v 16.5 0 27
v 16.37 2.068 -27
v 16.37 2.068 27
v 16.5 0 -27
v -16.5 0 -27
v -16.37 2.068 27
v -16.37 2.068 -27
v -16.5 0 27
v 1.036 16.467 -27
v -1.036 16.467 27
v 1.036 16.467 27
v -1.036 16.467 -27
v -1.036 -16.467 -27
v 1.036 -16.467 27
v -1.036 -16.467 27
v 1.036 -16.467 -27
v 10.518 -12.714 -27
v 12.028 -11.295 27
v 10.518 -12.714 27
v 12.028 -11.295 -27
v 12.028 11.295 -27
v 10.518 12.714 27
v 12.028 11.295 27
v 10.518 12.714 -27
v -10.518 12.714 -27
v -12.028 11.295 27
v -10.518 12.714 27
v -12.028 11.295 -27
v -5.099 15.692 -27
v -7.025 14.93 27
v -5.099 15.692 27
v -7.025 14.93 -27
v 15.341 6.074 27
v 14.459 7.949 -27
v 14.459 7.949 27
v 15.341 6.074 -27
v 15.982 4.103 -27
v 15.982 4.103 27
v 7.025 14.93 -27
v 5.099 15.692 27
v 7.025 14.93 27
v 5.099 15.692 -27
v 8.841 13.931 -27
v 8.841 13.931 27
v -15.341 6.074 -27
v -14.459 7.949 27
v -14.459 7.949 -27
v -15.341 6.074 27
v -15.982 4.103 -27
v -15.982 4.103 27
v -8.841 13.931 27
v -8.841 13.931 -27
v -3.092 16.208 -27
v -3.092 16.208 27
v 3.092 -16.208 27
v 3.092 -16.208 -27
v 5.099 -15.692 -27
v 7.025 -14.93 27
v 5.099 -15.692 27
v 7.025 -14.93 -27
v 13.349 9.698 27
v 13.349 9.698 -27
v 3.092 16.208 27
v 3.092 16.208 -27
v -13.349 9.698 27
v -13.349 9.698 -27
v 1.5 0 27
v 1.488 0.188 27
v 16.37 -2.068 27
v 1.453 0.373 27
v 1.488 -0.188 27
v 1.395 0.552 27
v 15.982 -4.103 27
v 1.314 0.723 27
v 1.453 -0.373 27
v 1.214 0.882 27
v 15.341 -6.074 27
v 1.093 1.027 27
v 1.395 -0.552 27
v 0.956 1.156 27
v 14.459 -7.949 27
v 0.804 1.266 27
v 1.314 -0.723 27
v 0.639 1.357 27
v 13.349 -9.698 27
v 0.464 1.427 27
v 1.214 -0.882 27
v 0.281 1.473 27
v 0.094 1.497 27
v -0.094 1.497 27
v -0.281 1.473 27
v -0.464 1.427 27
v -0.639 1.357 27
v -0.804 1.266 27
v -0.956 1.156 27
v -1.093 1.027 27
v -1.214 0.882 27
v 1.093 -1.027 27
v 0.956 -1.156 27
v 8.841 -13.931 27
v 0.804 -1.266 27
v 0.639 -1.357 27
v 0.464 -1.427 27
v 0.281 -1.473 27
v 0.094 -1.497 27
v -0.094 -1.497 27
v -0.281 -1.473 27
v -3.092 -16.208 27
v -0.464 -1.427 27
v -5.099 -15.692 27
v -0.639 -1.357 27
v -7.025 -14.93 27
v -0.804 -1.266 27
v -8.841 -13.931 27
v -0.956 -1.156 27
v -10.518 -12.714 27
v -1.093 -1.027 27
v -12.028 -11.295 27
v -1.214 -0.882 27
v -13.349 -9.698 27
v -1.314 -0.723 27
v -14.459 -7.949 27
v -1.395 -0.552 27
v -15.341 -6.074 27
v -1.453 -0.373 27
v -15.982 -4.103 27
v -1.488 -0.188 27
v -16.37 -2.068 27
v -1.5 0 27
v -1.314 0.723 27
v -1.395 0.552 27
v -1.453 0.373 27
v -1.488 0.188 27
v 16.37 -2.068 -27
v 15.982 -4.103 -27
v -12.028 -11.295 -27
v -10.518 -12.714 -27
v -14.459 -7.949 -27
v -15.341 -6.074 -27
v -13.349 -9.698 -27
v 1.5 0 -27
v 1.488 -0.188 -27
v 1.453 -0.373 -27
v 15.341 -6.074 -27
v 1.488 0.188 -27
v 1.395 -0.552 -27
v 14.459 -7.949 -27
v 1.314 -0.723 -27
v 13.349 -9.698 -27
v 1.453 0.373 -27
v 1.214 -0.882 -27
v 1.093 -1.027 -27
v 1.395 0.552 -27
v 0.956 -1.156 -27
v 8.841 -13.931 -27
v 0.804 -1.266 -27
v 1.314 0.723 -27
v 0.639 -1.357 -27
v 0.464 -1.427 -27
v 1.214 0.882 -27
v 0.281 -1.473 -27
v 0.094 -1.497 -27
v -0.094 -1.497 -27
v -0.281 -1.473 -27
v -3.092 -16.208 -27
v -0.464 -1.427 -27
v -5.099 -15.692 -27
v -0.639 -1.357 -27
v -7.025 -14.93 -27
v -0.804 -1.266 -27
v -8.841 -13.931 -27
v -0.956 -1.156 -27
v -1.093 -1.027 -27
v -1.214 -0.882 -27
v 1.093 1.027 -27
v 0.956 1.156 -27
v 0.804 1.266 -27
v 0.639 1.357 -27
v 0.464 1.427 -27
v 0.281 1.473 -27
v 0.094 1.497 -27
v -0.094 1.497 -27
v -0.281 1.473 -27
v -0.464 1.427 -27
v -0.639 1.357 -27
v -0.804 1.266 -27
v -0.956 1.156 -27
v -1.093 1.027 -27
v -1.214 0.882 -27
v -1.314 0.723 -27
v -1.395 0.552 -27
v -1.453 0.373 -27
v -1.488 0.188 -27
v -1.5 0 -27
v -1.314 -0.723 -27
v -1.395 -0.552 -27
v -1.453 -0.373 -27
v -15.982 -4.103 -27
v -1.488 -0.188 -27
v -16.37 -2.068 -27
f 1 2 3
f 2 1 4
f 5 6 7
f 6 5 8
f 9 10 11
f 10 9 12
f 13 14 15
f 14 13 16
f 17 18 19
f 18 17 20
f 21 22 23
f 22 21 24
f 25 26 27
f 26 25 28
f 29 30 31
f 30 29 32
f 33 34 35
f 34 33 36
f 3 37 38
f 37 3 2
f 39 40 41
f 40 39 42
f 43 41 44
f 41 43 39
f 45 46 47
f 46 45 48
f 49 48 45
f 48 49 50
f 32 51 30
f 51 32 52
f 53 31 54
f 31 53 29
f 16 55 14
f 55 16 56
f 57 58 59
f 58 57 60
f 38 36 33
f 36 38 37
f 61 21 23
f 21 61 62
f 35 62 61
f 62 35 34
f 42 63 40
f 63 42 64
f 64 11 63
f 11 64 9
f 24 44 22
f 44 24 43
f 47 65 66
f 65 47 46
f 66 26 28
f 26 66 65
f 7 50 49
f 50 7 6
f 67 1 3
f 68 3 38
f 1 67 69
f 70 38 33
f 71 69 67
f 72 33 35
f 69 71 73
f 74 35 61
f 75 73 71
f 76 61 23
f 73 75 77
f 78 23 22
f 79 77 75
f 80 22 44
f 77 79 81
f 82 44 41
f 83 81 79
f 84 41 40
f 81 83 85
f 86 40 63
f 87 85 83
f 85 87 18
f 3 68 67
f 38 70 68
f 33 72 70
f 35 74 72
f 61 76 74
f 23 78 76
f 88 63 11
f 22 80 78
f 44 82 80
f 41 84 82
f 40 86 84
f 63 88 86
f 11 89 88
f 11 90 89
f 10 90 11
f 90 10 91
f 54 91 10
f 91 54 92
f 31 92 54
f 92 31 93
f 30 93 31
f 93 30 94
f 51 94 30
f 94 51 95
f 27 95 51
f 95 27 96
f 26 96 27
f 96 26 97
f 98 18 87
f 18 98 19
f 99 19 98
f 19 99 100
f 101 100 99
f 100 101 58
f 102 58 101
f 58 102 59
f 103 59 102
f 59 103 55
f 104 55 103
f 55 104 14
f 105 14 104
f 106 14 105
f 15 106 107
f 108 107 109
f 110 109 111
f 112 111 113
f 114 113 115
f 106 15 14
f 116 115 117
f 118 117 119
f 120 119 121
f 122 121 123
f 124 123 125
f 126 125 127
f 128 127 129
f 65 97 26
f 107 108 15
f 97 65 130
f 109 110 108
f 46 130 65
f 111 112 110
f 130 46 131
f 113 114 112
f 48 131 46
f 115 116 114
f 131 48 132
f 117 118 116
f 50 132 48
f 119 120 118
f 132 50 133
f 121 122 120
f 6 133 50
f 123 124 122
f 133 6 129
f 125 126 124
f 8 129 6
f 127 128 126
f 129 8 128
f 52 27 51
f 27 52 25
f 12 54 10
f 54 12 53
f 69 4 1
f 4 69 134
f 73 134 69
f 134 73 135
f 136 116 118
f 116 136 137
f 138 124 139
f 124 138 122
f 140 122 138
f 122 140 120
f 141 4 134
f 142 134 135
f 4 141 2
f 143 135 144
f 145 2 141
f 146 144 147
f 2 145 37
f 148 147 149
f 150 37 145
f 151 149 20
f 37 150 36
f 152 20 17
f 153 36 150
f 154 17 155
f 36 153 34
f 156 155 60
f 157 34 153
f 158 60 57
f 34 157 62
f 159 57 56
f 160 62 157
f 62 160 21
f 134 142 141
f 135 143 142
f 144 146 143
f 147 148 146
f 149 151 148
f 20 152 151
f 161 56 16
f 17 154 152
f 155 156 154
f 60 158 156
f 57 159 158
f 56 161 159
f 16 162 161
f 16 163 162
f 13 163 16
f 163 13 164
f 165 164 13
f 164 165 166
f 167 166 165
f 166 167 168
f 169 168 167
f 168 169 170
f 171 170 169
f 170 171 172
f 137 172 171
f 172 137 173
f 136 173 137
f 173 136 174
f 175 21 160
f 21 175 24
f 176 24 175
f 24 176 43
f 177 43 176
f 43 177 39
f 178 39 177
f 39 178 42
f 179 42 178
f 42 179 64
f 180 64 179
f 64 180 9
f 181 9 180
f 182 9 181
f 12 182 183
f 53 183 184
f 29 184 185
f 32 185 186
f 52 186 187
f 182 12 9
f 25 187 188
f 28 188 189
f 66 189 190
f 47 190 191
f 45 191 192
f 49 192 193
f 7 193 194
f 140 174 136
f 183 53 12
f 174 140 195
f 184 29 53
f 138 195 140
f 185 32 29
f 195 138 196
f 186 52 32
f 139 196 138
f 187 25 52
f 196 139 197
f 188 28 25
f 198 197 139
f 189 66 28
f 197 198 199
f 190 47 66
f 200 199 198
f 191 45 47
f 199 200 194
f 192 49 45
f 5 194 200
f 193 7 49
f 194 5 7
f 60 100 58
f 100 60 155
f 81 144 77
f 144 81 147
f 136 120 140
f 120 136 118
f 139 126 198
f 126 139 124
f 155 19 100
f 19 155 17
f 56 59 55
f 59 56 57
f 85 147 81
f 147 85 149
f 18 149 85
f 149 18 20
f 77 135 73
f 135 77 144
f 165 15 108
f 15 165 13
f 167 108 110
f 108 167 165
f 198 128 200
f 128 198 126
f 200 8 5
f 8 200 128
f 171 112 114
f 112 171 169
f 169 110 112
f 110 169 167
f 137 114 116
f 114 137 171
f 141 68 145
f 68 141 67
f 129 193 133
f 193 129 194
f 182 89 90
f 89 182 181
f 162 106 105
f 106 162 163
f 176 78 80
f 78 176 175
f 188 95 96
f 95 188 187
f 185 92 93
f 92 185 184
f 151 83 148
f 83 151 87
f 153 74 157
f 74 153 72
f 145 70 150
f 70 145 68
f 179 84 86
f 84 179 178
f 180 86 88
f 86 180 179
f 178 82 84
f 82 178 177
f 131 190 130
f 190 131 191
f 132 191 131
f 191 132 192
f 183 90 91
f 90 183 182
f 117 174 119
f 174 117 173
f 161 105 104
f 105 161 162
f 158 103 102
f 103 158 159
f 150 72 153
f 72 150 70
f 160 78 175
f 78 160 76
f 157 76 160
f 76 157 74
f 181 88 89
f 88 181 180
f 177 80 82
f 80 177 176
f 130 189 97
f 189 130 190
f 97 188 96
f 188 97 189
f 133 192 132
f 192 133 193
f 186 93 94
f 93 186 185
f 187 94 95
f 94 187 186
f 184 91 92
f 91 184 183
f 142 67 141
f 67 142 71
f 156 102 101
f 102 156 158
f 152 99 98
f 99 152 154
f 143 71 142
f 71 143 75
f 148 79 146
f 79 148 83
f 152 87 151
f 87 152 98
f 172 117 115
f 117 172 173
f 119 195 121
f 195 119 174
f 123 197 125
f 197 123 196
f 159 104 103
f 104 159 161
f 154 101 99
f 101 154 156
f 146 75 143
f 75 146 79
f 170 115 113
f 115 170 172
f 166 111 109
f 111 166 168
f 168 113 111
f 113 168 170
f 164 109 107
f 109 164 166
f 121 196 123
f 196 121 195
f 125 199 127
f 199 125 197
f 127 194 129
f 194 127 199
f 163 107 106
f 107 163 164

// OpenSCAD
$fn = 50;


difference() {
	union() {
		translate(v = [0, 0, -27.0000000000]) {
			cylinder(h = 54, r = 16.5000000000);
		}
	}
	union() {
		translate(v = [0, 0, -100.0000000000]) {
			cylinder(h = 200, r = 1.5000000000);
		}
	}
}
